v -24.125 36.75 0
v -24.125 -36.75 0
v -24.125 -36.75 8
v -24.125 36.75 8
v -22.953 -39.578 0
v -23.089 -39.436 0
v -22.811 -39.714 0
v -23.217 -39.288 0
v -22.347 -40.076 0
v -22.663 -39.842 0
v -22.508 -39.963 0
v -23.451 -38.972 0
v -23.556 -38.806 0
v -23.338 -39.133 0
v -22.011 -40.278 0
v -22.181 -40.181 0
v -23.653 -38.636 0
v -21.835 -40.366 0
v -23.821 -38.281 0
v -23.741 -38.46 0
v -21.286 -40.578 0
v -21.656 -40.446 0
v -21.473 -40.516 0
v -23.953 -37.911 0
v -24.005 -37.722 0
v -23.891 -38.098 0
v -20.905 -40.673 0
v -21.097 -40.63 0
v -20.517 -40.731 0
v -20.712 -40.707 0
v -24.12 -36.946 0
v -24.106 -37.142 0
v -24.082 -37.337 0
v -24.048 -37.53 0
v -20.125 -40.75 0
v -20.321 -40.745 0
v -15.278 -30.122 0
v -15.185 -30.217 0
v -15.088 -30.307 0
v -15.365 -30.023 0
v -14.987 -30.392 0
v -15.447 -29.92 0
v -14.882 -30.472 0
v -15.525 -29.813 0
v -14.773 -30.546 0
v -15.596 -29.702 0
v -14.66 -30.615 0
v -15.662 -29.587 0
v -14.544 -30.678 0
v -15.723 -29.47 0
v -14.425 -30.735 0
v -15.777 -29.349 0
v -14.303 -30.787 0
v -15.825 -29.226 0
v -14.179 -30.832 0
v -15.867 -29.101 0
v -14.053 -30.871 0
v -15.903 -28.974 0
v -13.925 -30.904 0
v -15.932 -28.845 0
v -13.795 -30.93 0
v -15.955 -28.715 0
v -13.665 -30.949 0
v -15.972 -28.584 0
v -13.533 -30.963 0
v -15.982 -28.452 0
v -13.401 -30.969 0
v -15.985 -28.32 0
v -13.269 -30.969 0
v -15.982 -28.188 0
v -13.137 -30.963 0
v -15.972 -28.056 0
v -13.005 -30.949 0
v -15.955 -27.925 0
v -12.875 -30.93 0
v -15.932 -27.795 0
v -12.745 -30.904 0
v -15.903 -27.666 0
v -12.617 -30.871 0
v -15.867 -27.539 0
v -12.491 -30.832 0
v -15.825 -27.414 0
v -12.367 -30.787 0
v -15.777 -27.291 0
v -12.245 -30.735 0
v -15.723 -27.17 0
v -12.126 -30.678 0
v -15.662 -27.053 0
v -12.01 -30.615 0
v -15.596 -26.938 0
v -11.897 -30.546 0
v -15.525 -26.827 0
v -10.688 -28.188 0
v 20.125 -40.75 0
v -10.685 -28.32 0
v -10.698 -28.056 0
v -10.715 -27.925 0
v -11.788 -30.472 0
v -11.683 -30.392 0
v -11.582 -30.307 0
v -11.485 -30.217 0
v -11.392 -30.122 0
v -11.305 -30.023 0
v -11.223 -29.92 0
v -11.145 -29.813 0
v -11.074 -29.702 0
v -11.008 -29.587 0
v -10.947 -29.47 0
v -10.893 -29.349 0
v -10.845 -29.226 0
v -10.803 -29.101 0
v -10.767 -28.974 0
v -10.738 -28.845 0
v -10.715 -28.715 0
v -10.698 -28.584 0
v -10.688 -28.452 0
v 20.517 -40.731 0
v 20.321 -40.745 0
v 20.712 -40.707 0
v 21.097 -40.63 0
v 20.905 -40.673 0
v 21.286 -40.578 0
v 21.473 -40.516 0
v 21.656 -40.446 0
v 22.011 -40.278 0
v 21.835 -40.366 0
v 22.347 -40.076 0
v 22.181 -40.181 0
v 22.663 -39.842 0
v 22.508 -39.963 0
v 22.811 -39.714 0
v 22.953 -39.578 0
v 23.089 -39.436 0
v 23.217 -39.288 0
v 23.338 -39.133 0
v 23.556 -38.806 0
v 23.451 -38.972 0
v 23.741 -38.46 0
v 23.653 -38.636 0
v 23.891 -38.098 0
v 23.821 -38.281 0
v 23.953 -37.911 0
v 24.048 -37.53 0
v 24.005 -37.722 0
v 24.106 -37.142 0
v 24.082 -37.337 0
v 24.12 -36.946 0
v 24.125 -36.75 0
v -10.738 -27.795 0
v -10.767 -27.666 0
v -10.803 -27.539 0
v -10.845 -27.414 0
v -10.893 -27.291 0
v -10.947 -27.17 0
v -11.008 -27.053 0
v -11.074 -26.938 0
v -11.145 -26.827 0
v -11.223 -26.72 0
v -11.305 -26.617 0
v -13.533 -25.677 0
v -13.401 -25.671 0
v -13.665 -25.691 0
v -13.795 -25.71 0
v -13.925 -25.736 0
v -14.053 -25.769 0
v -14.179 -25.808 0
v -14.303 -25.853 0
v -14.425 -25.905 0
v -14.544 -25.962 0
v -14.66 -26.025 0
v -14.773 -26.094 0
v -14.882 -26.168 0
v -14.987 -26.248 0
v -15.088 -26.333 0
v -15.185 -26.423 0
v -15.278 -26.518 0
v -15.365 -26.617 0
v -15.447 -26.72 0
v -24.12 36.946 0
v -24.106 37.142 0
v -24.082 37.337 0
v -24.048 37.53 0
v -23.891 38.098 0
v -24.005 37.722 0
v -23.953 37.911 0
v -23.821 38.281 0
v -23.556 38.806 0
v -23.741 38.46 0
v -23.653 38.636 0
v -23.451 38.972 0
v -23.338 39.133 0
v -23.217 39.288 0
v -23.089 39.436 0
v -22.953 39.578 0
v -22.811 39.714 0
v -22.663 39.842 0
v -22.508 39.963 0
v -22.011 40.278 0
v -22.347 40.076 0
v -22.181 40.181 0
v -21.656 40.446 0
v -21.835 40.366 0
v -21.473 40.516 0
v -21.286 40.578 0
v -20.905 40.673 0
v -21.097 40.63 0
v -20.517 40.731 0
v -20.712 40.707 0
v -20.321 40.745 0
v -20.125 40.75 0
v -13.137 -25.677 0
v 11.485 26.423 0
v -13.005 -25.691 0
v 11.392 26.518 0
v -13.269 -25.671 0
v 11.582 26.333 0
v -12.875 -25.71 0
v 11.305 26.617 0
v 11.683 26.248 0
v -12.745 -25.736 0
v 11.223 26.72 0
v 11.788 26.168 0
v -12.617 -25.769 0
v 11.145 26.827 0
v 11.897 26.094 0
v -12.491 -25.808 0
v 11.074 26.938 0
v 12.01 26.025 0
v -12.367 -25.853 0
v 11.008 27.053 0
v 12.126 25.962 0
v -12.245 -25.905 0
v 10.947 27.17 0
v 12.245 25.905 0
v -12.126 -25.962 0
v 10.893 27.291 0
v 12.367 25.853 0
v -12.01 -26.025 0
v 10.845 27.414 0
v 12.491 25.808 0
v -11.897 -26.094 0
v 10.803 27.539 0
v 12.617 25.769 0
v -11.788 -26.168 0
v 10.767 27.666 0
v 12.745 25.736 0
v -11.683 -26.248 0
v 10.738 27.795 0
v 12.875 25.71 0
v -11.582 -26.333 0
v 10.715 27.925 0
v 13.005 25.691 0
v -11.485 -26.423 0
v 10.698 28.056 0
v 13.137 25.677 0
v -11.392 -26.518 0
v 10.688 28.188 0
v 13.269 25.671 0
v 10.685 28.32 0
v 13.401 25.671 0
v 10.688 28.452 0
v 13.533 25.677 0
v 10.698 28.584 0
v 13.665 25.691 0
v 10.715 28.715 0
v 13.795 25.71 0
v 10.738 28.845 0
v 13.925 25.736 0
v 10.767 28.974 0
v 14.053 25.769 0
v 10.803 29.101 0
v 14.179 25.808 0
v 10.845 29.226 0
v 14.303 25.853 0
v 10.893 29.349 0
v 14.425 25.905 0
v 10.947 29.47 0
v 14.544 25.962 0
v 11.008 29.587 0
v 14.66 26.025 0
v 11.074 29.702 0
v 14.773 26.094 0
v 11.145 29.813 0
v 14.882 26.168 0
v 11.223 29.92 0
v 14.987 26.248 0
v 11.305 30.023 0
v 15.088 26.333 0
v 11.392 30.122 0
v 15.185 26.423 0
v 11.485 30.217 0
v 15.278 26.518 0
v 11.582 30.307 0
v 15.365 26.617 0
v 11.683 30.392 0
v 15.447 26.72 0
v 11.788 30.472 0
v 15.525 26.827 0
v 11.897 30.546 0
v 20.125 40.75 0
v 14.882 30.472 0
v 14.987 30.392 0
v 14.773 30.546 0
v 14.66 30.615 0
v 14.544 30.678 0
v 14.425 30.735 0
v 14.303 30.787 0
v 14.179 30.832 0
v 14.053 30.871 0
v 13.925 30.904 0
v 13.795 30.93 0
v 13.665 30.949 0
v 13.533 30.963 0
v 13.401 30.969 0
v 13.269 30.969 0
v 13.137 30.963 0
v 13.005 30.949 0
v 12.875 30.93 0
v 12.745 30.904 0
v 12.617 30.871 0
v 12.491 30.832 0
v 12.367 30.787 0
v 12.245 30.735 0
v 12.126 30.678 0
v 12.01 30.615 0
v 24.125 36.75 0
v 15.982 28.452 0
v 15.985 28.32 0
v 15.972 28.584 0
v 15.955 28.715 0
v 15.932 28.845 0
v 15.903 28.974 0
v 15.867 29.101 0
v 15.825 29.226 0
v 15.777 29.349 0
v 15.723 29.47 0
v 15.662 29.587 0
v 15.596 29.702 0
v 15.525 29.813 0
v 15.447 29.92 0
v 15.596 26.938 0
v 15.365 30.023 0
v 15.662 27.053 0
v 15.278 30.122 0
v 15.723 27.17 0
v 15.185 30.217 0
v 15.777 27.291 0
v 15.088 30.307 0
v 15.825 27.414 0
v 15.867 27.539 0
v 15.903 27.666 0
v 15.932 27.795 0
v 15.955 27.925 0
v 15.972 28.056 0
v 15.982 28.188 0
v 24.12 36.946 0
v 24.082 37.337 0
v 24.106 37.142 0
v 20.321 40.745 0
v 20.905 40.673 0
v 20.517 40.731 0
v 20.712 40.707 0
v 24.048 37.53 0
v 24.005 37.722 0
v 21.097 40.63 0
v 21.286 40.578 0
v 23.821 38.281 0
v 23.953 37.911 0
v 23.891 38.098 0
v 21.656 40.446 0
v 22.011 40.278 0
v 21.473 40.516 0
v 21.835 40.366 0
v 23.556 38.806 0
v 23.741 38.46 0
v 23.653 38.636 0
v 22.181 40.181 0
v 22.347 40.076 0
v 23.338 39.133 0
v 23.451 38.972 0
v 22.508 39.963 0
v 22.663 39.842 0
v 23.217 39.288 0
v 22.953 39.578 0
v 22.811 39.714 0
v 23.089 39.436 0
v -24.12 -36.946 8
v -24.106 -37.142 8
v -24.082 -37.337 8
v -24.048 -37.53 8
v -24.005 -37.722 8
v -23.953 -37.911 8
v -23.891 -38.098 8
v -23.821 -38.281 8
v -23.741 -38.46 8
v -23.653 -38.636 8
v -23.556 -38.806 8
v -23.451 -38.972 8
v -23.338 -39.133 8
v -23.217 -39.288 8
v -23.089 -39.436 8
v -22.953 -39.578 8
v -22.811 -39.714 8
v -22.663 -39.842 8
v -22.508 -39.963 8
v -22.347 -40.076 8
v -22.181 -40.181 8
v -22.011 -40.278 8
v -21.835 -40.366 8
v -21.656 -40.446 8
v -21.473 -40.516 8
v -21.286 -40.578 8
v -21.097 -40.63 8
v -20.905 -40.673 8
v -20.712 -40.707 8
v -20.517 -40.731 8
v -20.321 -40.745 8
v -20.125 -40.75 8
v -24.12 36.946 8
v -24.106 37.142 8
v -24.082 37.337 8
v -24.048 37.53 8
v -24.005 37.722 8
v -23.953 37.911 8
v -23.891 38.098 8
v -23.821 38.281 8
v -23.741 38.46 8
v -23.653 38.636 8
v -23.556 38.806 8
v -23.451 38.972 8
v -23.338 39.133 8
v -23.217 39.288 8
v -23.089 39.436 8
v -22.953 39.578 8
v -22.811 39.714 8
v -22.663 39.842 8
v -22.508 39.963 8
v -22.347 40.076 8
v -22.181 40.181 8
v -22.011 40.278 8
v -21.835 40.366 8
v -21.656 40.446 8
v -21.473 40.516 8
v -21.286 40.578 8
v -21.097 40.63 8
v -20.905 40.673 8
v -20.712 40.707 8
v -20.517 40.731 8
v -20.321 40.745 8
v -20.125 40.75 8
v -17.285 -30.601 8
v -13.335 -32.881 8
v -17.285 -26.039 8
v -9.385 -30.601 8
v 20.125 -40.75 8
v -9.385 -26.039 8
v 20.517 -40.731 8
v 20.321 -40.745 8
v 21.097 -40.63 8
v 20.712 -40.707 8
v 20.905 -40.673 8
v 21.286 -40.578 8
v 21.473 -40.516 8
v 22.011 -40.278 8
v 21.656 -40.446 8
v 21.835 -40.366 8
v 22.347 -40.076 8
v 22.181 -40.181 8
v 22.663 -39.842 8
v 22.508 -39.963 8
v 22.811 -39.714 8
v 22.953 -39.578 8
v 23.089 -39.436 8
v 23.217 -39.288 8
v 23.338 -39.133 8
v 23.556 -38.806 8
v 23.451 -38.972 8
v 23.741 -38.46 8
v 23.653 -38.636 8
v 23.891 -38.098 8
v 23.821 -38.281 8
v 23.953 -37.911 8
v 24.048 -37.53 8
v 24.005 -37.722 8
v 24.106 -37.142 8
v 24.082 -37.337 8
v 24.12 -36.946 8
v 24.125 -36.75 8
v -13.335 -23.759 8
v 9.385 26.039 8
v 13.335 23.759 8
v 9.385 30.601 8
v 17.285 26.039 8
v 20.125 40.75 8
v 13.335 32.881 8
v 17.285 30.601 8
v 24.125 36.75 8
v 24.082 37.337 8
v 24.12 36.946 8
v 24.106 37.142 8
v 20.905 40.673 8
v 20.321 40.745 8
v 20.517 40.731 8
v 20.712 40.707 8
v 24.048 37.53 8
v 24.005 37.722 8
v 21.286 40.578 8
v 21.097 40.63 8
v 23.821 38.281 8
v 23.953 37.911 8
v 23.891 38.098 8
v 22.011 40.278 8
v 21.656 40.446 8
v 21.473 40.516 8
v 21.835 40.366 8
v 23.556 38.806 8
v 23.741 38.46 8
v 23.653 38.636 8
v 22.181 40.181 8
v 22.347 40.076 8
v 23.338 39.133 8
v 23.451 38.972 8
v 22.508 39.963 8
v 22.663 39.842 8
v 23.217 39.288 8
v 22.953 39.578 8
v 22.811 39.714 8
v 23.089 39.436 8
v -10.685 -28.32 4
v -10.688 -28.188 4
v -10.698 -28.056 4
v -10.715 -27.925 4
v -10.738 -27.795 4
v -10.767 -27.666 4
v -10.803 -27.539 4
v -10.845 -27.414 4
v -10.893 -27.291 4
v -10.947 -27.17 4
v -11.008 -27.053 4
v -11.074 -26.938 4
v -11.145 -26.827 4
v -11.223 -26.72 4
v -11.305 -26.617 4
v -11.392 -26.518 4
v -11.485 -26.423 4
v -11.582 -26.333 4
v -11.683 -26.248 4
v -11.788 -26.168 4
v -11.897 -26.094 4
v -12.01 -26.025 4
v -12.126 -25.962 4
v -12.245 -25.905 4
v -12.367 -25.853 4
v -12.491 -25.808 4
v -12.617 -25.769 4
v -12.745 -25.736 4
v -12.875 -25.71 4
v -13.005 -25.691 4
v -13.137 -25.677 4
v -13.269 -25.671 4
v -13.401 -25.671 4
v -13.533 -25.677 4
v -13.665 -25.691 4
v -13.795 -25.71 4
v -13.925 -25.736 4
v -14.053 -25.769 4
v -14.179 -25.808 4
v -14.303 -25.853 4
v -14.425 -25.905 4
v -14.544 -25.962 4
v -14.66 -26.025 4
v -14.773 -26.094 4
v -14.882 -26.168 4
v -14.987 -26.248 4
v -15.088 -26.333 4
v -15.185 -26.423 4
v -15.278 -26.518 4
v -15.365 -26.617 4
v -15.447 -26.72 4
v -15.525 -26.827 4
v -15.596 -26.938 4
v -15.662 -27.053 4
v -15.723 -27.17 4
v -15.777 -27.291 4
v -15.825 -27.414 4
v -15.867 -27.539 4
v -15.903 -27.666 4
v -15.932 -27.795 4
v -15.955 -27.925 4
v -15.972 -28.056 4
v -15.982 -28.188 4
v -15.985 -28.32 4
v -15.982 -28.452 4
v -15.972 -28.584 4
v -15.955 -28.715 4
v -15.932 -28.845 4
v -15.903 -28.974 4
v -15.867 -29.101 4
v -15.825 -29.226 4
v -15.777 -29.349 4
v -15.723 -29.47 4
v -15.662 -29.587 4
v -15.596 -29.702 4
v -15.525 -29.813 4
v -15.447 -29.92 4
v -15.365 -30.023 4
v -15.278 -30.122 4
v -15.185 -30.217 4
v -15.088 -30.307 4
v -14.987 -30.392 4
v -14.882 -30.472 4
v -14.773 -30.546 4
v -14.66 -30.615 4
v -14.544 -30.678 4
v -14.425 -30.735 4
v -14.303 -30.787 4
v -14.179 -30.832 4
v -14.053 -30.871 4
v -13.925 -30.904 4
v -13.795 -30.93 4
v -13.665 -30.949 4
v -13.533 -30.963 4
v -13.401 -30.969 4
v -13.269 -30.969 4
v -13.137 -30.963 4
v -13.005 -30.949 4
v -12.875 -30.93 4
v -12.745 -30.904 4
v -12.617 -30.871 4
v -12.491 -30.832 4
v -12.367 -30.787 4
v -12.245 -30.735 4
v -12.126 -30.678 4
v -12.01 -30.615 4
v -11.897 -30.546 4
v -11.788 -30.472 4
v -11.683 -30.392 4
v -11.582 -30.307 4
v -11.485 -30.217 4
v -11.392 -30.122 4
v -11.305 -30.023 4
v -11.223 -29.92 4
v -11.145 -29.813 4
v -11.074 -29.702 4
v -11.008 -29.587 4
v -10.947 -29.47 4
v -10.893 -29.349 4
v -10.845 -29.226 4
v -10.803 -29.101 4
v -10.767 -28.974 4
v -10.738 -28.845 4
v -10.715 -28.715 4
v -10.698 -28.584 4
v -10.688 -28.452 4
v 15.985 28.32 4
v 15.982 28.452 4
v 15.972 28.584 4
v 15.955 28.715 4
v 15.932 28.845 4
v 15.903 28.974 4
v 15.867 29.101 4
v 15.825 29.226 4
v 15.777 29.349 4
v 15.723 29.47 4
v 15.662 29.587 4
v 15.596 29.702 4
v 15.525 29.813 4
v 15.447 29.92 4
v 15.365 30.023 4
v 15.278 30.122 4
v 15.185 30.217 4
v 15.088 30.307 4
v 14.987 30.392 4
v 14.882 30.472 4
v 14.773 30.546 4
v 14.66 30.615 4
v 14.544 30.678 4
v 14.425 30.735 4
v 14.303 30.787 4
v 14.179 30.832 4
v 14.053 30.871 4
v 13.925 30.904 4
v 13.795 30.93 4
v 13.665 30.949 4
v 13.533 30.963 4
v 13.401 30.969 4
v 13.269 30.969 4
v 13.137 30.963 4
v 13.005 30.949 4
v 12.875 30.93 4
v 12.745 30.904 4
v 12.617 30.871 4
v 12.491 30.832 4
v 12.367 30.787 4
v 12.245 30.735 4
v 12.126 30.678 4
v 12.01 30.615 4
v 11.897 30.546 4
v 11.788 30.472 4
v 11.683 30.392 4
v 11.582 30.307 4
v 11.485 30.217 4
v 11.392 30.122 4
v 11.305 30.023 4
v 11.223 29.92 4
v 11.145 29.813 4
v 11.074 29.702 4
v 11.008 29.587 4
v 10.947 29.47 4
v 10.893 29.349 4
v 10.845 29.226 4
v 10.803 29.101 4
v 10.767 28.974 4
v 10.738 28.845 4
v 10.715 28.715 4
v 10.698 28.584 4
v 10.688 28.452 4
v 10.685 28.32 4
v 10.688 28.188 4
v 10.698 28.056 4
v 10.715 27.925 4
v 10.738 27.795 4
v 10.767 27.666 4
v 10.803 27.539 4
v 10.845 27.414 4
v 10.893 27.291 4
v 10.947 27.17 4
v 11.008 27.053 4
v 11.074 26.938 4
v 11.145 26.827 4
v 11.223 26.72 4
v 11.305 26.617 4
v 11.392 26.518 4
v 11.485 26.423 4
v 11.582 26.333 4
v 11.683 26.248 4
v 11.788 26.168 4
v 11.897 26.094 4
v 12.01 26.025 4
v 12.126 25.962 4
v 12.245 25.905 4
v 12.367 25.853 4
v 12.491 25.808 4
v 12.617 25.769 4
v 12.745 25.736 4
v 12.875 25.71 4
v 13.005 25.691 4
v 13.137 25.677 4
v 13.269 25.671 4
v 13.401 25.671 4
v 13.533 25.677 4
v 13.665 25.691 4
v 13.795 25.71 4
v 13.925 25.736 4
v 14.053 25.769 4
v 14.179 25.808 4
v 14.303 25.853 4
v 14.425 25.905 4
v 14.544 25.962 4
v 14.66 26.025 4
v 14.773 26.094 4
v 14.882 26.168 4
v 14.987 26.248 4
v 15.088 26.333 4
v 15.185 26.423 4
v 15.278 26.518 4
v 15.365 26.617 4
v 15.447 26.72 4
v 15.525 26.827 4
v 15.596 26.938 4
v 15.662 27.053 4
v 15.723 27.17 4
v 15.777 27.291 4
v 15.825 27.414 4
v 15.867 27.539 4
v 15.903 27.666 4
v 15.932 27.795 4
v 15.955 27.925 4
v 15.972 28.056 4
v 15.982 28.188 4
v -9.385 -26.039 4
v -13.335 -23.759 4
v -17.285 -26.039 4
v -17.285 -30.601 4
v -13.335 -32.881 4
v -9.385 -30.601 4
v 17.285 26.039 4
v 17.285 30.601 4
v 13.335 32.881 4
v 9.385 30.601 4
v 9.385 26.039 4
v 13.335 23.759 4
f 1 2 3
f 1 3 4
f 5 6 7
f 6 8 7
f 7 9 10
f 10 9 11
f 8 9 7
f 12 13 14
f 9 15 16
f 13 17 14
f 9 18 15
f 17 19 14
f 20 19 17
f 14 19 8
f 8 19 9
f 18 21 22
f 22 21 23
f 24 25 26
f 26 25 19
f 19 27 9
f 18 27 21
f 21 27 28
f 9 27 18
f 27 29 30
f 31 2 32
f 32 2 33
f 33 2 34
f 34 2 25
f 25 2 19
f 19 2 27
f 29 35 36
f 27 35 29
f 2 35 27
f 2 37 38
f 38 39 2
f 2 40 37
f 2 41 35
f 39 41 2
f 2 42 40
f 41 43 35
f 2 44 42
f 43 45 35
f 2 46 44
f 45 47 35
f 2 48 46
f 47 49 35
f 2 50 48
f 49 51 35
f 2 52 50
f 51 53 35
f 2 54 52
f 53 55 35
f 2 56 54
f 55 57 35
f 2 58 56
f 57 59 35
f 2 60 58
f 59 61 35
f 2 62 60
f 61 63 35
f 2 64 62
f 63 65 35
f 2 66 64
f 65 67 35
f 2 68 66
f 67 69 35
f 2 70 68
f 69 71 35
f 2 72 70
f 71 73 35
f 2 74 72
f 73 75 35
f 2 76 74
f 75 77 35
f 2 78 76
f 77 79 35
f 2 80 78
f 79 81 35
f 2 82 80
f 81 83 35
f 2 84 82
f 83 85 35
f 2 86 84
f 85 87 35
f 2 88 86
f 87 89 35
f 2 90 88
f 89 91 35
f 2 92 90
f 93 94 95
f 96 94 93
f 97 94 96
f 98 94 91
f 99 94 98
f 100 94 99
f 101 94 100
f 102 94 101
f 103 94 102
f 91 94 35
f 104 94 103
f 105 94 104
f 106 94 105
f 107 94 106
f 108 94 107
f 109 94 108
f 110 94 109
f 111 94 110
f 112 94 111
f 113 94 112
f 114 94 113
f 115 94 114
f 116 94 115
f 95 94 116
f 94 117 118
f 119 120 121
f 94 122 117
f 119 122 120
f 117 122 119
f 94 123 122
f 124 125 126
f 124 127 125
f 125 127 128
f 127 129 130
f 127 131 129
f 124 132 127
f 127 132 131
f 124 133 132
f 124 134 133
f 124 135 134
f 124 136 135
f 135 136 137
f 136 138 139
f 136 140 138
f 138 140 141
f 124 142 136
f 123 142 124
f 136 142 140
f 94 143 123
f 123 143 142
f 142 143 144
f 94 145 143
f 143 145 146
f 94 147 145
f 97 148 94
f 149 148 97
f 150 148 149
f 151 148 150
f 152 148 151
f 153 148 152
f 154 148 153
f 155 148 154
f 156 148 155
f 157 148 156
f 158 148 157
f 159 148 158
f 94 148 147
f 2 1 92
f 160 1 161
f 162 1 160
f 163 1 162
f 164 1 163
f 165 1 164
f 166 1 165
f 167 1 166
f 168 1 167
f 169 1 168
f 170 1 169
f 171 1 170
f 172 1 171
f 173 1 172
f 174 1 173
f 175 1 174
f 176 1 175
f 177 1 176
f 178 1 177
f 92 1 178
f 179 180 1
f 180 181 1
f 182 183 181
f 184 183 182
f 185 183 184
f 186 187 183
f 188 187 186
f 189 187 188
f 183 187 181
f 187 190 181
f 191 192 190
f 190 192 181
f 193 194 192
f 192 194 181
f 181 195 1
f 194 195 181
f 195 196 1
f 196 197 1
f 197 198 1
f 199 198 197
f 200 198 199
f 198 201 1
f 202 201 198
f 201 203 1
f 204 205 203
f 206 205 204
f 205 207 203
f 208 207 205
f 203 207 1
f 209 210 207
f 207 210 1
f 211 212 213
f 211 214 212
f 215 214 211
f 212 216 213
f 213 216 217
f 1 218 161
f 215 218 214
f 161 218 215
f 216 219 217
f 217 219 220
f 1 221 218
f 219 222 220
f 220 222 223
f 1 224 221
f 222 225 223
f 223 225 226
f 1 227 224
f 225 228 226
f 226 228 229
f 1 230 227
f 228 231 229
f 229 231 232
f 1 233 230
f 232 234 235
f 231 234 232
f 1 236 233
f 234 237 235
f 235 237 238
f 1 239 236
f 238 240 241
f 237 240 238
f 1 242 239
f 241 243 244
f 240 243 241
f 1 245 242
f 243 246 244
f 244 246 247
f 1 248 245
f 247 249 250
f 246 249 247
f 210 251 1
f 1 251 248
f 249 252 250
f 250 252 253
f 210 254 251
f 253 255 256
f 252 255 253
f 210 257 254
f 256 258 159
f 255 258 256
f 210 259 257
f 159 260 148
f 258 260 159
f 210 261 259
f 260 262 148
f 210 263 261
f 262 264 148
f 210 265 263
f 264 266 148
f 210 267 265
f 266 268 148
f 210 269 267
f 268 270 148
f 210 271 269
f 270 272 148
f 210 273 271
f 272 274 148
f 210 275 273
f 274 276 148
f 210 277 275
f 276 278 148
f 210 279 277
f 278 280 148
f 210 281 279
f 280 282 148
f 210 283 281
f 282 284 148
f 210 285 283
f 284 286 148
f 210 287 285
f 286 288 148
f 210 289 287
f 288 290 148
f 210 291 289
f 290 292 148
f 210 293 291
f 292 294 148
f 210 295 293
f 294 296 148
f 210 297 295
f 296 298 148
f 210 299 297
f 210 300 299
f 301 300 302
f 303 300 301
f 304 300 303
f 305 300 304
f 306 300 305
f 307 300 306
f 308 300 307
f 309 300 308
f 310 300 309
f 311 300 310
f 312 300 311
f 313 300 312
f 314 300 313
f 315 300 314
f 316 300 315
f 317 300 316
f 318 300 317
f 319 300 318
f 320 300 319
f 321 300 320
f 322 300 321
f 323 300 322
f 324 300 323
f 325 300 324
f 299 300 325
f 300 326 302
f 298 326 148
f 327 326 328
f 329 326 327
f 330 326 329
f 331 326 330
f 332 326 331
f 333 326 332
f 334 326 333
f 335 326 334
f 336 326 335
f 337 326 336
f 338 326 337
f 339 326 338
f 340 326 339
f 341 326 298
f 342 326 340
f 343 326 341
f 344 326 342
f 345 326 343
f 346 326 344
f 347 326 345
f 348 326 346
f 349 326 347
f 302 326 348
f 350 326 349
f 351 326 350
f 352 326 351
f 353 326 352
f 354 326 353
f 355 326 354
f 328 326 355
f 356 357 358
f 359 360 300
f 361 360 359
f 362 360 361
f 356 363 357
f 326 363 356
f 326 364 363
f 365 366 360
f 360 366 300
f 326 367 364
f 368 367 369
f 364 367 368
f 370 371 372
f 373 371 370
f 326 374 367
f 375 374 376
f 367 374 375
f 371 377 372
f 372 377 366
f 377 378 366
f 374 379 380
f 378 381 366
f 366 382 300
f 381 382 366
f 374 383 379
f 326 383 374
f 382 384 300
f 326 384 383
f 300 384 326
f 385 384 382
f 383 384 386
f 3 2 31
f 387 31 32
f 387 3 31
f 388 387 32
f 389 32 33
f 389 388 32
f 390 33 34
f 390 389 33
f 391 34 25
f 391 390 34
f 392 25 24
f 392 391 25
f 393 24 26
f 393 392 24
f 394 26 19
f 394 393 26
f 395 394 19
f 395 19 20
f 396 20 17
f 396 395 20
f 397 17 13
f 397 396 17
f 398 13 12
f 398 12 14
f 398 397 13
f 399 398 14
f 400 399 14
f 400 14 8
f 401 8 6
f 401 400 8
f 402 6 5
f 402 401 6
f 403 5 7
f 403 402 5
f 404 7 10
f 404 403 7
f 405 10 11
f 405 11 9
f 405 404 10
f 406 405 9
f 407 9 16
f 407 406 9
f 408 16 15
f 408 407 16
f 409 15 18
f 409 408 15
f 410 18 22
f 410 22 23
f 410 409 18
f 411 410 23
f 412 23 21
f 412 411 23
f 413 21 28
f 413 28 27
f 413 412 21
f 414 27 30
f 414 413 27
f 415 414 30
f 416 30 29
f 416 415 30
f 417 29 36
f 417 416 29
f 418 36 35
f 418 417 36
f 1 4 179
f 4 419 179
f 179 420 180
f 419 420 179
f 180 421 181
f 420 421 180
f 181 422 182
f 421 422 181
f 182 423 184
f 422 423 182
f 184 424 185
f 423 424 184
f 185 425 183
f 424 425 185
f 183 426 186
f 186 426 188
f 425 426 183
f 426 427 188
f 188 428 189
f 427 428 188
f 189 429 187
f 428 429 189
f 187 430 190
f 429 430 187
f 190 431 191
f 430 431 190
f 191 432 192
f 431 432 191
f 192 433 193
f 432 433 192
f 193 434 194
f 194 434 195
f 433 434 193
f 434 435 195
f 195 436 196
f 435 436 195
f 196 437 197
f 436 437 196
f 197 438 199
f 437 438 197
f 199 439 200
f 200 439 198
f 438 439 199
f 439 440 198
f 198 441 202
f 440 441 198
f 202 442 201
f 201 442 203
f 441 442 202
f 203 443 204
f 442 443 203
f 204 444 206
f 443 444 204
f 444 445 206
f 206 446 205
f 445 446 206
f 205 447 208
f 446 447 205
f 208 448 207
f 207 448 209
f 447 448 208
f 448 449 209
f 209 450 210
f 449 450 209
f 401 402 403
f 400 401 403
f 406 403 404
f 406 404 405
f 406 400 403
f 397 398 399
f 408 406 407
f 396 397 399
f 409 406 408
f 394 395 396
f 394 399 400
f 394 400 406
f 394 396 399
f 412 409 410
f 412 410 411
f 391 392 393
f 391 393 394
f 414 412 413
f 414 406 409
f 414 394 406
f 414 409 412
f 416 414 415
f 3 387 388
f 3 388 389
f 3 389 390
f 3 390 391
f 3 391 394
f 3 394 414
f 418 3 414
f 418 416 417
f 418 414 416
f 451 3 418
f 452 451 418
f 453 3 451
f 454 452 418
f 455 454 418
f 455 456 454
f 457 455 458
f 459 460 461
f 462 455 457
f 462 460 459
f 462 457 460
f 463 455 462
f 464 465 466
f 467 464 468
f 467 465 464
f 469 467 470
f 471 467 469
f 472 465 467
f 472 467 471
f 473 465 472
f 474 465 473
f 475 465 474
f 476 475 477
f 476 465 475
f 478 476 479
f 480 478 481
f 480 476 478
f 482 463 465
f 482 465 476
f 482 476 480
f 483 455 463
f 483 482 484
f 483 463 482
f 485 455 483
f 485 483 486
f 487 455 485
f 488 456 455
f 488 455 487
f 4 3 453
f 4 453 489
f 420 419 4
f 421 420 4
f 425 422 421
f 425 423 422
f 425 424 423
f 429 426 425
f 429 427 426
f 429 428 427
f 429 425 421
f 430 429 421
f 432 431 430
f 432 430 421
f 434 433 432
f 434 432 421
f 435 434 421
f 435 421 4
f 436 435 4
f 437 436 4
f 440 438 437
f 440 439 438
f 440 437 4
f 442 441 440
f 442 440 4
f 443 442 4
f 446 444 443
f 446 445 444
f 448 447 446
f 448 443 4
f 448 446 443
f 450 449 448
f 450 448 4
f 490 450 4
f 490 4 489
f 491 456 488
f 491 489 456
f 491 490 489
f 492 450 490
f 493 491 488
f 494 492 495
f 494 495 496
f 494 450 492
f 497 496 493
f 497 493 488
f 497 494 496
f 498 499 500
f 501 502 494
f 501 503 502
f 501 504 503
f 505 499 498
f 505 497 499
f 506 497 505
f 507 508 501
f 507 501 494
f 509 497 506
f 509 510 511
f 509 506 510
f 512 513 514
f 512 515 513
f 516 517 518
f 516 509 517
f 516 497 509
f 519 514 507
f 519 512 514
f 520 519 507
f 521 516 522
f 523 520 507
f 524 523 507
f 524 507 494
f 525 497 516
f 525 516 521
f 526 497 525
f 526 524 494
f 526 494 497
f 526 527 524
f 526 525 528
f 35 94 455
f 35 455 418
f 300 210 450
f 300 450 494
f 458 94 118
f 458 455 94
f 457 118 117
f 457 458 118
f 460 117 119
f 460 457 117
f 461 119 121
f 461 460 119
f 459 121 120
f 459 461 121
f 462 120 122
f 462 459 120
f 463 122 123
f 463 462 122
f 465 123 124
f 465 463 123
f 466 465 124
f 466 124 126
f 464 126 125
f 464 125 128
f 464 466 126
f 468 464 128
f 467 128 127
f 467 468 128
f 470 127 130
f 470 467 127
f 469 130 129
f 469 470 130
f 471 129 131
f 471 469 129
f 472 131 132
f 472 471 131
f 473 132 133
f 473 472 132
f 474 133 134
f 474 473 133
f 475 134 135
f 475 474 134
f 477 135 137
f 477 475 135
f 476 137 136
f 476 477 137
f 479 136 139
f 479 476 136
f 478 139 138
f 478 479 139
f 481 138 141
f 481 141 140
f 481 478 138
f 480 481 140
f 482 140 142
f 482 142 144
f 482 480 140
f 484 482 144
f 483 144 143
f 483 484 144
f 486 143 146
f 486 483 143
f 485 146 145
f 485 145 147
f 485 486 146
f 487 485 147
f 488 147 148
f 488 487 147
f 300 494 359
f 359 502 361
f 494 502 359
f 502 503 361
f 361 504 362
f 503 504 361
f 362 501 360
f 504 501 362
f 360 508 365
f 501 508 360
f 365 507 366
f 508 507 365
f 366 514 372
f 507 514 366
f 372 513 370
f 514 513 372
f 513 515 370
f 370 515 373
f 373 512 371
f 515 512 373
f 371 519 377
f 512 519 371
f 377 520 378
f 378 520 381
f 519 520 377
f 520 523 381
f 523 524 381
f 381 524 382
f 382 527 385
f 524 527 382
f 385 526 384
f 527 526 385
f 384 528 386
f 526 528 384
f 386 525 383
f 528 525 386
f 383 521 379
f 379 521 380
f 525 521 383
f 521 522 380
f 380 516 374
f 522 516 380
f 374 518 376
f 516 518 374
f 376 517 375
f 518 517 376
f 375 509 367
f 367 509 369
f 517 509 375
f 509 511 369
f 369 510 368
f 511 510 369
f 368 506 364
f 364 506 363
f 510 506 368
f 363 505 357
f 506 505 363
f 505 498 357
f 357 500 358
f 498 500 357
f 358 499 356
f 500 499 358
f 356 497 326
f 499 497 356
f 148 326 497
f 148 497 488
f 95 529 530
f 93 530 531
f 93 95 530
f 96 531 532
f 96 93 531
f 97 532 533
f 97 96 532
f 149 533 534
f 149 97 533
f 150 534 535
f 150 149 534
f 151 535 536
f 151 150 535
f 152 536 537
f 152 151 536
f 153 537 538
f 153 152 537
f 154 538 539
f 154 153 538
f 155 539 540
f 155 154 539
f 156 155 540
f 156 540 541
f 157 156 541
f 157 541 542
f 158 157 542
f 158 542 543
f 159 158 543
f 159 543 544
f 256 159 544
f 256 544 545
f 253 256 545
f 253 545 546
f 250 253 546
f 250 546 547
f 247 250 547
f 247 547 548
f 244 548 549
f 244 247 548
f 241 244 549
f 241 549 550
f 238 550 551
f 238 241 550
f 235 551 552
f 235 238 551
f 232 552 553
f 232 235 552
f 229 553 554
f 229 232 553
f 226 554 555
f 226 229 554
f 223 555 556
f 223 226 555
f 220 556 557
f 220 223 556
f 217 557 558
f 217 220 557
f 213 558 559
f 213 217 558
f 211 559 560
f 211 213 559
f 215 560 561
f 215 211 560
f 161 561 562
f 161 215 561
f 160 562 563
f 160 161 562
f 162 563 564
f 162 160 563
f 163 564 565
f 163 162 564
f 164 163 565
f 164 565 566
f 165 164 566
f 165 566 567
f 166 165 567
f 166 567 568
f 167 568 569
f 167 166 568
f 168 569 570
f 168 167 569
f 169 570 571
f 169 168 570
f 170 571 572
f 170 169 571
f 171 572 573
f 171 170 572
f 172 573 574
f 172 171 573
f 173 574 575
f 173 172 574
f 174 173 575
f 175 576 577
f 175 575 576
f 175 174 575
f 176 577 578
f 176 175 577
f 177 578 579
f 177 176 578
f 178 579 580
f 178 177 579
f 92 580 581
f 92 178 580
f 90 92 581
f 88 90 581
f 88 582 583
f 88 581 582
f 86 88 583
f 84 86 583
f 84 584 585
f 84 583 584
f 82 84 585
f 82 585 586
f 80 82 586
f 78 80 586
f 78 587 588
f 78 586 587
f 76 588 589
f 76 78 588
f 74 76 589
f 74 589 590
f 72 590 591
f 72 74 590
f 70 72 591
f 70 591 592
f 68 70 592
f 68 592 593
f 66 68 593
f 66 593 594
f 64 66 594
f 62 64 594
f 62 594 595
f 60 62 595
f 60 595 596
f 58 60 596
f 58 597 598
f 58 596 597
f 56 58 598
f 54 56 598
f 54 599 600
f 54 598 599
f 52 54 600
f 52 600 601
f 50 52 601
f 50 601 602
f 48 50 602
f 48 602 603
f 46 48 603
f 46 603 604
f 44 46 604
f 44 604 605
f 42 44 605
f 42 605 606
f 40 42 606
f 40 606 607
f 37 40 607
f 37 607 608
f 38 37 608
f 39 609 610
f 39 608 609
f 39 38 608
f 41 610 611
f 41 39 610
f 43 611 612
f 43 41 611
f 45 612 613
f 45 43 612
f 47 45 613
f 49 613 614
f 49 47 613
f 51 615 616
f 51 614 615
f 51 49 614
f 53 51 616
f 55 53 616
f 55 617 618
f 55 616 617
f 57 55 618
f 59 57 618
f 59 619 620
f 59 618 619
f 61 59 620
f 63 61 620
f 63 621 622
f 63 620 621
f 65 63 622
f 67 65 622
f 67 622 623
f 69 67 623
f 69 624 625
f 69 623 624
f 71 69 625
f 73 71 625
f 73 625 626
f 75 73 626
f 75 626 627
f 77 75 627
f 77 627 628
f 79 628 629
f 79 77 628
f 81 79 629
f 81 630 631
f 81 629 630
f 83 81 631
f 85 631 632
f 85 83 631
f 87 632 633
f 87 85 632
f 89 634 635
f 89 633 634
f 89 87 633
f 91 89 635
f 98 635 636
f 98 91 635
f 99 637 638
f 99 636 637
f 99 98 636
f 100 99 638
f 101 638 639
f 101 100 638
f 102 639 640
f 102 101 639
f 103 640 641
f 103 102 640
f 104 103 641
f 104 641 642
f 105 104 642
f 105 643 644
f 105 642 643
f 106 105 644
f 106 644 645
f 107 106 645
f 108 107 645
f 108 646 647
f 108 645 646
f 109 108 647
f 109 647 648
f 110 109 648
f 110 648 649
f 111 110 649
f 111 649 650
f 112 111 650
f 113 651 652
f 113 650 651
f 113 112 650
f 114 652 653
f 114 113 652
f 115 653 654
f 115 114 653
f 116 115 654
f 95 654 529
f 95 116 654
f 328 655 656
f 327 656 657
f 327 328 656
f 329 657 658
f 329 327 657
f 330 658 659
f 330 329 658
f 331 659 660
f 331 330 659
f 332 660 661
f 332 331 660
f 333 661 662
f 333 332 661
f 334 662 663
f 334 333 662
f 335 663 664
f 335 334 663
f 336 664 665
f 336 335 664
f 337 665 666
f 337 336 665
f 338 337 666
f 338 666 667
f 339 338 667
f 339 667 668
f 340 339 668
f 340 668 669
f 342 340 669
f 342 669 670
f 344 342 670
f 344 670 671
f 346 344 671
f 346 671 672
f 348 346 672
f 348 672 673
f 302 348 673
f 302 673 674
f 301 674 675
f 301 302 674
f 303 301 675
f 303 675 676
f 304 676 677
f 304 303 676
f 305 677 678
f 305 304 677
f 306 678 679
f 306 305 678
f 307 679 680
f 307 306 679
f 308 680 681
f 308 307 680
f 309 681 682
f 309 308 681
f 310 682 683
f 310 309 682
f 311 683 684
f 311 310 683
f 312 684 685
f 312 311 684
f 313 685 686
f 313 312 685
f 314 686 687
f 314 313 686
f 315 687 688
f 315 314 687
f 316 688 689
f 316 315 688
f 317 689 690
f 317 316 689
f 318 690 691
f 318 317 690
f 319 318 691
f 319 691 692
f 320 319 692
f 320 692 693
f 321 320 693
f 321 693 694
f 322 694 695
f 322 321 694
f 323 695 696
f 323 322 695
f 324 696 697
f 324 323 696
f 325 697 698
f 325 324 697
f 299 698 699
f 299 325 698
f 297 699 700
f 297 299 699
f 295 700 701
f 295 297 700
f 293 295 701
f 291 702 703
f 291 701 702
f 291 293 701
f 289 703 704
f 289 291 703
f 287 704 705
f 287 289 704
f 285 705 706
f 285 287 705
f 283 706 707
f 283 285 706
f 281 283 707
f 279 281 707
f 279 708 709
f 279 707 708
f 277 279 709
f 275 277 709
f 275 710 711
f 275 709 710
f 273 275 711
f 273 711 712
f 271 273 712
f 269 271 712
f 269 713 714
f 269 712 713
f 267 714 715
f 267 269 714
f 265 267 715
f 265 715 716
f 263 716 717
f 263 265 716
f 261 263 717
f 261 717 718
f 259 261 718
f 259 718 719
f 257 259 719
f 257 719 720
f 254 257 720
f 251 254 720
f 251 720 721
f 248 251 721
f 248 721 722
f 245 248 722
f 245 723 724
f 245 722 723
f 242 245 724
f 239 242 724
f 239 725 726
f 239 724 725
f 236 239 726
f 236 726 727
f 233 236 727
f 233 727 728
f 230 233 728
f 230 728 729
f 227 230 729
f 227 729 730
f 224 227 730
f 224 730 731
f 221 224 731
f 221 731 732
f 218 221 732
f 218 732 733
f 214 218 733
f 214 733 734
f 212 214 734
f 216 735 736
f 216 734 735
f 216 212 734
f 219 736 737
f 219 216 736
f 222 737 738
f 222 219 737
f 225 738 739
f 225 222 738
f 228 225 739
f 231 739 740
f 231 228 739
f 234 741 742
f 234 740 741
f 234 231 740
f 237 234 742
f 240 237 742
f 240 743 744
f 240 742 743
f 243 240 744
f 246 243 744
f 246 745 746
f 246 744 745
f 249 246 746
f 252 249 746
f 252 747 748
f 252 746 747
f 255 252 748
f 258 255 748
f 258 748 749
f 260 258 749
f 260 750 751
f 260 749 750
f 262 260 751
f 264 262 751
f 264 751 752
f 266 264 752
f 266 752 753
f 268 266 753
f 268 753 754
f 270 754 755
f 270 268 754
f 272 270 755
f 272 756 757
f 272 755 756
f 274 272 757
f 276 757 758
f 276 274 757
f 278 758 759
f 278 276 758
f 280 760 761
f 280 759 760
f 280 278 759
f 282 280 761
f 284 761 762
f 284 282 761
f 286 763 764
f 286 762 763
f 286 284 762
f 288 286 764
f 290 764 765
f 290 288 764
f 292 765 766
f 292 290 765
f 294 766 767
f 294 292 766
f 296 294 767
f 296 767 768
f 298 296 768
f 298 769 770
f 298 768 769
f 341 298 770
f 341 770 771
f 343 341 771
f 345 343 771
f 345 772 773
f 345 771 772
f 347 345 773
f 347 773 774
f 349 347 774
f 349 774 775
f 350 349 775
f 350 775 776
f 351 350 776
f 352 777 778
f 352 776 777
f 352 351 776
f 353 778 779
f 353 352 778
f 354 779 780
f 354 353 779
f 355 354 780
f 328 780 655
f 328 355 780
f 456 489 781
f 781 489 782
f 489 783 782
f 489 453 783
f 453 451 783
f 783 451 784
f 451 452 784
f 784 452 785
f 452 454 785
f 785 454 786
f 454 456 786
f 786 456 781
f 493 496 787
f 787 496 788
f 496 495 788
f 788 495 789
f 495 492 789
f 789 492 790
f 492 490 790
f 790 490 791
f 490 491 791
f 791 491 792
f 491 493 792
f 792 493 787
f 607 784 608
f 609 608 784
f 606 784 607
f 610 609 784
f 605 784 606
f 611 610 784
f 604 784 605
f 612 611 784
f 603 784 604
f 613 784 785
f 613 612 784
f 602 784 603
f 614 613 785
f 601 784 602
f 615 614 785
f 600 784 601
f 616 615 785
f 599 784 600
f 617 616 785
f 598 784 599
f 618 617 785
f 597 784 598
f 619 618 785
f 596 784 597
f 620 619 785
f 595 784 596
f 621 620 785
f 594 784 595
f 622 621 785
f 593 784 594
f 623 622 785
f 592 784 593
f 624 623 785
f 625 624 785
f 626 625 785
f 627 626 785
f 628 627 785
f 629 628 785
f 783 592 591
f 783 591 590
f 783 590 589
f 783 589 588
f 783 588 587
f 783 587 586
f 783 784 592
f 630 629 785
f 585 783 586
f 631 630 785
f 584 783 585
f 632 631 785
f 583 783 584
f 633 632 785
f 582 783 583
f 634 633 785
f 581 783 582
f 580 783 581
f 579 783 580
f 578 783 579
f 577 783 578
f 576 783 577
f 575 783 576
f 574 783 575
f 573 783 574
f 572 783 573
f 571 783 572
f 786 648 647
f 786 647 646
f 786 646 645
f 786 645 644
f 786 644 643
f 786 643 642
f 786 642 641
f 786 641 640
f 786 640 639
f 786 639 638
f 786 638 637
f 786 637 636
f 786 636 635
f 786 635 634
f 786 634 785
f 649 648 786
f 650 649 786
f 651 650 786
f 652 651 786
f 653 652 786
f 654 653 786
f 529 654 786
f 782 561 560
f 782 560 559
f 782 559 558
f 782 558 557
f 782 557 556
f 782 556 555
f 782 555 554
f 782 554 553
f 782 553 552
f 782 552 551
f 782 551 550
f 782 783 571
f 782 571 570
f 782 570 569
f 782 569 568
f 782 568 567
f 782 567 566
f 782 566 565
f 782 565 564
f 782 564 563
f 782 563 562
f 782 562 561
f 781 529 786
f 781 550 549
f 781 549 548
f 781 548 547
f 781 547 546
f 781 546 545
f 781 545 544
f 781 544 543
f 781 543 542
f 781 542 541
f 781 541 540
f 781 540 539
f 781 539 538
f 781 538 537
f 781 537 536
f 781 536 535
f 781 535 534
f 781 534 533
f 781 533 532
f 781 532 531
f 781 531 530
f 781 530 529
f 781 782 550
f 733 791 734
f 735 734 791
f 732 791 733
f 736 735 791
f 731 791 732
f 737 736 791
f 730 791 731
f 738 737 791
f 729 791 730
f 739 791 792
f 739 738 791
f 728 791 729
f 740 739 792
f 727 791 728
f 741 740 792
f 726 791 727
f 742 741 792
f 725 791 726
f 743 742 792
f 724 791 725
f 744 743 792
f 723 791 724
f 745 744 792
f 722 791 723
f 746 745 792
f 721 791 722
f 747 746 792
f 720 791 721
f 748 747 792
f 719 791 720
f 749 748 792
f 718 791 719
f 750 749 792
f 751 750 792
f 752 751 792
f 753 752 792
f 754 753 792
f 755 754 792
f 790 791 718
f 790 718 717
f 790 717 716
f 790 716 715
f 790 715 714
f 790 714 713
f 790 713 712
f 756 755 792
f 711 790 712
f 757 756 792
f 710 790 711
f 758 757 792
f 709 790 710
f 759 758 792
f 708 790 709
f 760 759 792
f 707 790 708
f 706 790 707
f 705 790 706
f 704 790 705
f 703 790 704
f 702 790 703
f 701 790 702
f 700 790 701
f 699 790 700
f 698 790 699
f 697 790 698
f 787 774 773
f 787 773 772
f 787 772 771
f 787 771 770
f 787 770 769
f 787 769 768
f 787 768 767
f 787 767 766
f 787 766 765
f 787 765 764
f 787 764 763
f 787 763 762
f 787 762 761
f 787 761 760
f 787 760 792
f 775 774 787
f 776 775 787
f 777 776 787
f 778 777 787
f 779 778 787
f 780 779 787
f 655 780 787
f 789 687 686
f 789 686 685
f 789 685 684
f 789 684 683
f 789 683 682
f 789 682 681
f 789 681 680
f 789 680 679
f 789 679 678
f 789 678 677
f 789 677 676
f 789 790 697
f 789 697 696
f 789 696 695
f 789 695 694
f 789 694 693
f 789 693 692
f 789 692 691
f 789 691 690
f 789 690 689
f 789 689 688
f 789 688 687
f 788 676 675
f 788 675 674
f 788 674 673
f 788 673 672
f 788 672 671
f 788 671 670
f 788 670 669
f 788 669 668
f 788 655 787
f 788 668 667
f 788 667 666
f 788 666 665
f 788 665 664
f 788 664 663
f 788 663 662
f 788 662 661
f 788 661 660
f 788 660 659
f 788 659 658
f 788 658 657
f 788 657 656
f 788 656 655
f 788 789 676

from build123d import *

# Parameters (mm, degrees)
SKETCH_W     = 48.25
SKETCH_H     = 81.5
SKETCH_R     = 2.65
PAD_DEPTH    = 8
POCKET_DEPTH = 4
FILLET_R     = 4


with BuildPart() as part:
    # Sketch → Pad (new body)
    with BuildSketch(Plane.XY):
        Rectangle(SKETCH_W, SKETCH_H)
        with Locations((13.335, 28.32)):
            Circle(SKETCH_R, mode=Mode.SUBTRACT)
        with Locations((-13.335, -28.32)):
            Circle(SKETCH_R, mode=Mode.SUBTRACT)
    extrude(amount=PAD_DEPTH)

    # Sketch001 (on Face8 of Pad) → Pocket (cut)
    with BuildSketch(Plane.XY.offset(8)):
        Polygon((17.285, 26.039466), (17.285, 30.600534), (13.335, 32.881067), (9.385, 30.600534), (9.385, 26.039466), (13.335, 23.758933), align=None)
        Polygon((-9.385, -26.039466), (-13.335, -23.758933), (-17.285, -26.039466), (-17.285, -30.600534), (-13.335, -32.881067), (-9.385, -30.600534), align=None)
    extrude(amount=-POCKET_DEPTH, mode=Mode.SUBTRACT)

    # Fillet
    fillet_edges = [part.edges().sort_by_distance(p)[0] for p in [
        (-24.125, -40.75, 4),
        (24.125, -40.75, 4),
        (24.125, 40.75, 4),
        (-24.125, 40.75, 4),
    ]]
    fillet(fillet_edges, radius=FILLET_R)


solid = part.part
